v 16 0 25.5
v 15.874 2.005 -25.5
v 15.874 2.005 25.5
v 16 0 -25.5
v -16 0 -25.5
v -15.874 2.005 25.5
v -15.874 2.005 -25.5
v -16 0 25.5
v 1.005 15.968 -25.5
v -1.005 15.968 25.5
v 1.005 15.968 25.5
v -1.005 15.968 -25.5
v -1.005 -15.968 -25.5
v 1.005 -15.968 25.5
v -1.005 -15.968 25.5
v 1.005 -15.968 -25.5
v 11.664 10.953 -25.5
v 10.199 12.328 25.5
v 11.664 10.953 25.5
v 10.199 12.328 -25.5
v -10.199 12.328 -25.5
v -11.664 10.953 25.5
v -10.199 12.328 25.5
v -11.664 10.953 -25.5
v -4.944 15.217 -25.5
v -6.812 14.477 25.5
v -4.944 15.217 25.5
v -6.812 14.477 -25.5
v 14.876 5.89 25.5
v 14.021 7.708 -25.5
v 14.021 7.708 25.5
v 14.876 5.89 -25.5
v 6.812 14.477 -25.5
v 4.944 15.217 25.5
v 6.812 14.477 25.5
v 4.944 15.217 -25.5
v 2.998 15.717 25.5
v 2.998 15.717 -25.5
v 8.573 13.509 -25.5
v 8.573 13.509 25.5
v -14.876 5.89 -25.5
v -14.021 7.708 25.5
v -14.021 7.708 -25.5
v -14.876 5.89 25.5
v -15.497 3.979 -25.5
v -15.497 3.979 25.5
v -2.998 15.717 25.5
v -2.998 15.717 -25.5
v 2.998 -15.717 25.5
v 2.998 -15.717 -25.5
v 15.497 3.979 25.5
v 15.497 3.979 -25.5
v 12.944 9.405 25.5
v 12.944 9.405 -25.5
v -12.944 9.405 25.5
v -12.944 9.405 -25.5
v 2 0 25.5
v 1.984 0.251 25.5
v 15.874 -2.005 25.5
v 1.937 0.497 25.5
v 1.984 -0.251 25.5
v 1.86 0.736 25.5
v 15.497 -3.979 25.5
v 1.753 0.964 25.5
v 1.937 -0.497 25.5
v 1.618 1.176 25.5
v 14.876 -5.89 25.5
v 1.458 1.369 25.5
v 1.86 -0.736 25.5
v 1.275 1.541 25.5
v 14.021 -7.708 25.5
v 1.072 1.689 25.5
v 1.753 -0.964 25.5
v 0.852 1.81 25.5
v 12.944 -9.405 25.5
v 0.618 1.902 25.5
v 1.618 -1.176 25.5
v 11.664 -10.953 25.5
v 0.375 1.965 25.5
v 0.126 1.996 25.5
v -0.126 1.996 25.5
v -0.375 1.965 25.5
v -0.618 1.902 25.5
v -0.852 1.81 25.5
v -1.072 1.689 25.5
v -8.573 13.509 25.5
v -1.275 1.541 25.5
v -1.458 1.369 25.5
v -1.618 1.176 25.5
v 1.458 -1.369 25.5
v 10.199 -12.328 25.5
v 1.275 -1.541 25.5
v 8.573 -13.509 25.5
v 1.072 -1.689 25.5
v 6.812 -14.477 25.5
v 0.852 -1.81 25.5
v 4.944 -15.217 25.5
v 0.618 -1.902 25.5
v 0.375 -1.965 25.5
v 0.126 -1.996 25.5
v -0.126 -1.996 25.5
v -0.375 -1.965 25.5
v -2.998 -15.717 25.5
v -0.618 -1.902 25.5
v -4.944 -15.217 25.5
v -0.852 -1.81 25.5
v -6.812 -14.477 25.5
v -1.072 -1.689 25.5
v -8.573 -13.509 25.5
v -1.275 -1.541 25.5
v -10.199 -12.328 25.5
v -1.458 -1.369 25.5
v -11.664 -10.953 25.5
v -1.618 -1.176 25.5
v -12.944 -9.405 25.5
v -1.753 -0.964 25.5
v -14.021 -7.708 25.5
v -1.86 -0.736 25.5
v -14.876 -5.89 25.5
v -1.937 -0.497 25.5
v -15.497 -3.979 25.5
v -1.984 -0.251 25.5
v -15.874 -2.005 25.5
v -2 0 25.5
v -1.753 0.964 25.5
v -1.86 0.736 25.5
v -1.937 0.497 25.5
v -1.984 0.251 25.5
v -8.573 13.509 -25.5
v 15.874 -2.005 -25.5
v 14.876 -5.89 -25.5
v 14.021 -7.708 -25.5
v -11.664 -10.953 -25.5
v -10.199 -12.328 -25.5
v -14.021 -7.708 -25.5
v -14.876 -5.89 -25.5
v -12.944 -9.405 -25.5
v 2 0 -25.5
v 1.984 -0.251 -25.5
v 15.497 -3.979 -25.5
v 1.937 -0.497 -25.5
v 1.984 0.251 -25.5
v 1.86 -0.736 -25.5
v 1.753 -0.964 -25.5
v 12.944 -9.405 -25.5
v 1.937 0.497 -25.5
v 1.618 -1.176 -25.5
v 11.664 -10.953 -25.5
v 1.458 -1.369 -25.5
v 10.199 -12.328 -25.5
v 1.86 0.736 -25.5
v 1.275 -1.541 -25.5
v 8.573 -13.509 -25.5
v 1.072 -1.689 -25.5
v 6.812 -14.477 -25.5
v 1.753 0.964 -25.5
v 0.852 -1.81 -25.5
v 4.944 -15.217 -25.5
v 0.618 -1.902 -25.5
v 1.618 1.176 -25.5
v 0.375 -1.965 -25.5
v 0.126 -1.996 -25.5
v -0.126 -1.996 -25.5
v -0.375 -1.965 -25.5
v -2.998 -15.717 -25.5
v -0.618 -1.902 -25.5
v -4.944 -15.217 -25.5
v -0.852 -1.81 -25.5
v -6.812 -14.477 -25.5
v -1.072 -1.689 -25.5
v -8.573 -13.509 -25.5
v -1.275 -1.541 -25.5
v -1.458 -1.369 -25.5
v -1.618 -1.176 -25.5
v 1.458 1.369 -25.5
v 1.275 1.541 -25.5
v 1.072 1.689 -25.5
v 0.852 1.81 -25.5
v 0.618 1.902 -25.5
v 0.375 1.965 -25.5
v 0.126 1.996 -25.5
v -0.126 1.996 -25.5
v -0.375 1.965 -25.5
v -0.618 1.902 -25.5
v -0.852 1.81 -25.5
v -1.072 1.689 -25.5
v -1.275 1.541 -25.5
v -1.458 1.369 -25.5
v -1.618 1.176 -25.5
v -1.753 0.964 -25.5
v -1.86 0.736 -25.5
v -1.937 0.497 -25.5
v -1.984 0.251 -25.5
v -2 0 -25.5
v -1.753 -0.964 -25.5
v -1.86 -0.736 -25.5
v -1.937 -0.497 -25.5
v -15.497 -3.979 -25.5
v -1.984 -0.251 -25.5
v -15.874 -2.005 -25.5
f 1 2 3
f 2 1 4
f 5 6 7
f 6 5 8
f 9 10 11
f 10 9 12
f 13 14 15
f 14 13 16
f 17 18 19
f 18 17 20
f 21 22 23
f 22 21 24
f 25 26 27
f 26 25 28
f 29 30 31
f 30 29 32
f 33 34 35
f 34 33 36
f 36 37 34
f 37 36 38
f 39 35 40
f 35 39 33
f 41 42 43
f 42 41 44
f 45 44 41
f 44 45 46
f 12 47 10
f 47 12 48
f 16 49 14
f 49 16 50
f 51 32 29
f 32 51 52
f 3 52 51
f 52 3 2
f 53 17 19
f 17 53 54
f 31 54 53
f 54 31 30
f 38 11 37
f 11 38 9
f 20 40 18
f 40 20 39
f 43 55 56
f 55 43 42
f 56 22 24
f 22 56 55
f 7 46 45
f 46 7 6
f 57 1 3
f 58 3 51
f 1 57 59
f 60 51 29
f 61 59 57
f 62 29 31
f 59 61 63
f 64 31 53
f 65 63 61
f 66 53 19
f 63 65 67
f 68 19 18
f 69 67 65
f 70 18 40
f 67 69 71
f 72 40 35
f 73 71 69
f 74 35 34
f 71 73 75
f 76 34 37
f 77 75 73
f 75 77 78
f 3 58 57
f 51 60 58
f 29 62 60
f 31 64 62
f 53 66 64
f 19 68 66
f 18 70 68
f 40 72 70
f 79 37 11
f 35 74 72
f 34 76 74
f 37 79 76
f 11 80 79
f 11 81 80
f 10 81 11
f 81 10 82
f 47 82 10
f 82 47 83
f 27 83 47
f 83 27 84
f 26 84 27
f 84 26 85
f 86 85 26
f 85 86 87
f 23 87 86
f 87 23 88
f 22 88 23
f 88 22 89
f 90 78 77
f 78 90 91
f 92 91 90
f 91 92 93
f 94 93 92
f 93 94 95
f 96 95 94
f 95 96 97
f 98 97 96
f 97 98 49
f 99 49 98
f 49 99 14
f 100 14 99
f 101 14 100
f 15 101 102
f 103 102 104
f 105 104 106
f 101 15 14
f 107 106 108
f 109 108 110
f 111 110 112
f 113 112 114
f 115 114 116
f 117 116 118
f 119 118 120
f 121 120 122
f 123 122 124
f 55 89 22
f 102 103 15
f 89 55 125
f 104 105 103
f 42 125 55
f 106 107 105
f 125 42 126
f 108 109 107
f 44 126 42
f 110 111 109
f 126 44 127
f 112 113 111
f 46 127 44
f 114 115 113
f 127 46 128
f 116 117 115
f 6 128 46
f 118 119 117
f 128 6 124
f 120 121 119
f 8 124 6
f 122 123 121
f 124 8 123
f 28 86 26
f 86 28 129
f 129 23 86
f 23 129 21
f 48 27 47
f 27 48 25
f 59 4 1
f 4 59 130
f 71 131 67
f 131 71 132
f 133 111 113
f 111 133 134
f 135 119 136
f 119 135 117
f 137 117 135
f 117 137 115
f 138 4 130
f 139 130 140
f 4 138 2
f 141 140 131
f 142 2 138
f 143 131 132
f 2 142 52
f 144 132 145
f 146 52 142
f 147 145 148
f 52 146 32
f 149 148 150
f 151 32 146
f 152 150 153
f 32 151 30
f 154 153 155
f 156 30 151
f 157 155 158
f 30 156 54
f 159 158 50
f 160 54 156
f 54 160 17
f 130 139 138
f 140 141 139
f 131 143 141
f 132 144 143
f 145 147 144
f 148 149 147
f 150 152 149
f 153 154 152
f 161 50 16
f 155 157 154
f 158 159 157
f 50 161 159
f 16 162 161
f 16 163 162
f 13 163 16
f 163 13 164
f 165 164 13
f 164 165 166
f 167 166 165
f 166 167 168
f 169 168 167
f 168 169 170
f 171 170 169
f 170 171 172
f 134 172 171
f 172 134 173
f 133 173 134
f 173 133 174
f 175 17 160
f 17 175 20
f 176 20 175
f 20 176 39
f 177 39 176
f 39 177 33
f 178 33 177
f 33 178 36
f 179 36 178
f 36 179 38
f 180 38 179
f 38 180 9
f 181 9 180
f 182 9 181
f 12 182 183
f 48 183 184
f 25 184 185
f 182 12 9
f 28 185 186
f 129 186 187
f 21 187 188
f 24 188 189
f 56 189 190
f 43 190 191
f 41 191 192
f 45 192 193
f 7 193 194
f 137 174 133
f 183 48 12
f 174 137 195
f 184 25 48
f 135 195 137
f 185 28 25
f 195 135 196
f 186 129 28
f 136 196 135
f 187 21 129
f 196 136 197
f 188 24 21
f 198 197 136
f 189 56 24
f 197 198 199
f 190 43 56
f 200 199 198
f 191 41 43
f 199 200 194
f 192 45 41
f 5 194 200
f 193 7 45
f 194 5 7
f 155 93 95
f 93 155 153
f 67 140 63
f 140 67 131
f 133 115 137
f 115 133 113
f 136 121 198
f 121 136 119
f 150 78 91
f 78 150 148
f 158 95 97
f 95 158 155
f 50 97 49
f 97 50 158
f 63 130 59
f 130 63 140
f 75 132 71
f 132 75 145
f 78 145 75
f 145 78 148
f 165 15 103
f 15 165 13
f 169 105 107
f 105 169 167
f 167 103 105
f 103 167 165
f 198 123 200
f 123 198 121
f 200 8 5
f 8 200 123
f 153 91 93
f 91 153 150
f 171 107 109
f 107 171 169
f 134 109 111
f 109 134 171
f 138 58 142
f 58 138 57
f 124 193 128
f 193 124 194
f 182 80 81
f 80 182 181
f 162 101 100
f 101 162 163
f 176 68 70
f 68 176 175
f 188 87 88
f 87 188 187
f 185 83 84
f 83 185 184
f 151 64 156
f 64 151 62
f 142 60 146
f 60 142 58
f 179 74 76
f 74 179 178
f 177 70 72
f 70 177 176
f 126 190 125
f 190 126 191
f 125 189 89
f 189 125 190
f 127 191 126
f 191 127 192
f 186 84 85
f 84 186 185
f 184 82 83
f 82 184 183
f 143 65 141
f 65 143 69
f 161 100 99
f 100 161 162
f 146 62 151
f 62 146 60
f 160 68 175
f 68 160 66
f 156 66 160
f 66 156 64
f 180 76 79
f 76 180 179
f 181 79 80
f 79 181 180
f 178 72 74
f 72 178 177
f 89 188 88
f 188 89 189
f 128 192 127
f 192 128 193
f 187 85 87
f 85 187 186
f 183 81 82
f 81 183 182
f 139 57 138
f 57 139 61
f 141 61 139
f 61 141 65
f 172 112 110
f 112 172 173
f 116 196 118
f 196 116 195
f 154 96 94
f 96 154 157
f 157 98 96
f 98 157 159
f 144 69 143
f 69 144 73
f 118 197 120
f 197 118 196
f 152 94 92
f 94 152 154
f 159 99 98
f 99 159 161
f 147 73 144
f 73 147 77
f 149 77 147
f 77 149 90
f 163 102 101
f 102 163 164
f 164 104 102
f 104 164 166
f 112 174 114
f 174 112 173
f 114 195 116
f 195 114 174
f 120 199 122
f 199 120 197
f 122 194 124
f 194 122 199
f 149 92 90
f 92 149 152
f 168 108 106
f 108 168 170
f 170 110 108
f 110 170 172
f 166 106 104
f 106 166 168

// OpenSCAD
$fn = 50;


difference() {
	union() {
		translate(v = [0, 0, -25.5000000000]) {
			cylinder(h = 51, r = 16.0000000000);
		}
	}
	union() {
		translate(v = [0, 0, -100.0000000000]) {
			cylinder(h = 200, r = 2);
		}
	}
}
